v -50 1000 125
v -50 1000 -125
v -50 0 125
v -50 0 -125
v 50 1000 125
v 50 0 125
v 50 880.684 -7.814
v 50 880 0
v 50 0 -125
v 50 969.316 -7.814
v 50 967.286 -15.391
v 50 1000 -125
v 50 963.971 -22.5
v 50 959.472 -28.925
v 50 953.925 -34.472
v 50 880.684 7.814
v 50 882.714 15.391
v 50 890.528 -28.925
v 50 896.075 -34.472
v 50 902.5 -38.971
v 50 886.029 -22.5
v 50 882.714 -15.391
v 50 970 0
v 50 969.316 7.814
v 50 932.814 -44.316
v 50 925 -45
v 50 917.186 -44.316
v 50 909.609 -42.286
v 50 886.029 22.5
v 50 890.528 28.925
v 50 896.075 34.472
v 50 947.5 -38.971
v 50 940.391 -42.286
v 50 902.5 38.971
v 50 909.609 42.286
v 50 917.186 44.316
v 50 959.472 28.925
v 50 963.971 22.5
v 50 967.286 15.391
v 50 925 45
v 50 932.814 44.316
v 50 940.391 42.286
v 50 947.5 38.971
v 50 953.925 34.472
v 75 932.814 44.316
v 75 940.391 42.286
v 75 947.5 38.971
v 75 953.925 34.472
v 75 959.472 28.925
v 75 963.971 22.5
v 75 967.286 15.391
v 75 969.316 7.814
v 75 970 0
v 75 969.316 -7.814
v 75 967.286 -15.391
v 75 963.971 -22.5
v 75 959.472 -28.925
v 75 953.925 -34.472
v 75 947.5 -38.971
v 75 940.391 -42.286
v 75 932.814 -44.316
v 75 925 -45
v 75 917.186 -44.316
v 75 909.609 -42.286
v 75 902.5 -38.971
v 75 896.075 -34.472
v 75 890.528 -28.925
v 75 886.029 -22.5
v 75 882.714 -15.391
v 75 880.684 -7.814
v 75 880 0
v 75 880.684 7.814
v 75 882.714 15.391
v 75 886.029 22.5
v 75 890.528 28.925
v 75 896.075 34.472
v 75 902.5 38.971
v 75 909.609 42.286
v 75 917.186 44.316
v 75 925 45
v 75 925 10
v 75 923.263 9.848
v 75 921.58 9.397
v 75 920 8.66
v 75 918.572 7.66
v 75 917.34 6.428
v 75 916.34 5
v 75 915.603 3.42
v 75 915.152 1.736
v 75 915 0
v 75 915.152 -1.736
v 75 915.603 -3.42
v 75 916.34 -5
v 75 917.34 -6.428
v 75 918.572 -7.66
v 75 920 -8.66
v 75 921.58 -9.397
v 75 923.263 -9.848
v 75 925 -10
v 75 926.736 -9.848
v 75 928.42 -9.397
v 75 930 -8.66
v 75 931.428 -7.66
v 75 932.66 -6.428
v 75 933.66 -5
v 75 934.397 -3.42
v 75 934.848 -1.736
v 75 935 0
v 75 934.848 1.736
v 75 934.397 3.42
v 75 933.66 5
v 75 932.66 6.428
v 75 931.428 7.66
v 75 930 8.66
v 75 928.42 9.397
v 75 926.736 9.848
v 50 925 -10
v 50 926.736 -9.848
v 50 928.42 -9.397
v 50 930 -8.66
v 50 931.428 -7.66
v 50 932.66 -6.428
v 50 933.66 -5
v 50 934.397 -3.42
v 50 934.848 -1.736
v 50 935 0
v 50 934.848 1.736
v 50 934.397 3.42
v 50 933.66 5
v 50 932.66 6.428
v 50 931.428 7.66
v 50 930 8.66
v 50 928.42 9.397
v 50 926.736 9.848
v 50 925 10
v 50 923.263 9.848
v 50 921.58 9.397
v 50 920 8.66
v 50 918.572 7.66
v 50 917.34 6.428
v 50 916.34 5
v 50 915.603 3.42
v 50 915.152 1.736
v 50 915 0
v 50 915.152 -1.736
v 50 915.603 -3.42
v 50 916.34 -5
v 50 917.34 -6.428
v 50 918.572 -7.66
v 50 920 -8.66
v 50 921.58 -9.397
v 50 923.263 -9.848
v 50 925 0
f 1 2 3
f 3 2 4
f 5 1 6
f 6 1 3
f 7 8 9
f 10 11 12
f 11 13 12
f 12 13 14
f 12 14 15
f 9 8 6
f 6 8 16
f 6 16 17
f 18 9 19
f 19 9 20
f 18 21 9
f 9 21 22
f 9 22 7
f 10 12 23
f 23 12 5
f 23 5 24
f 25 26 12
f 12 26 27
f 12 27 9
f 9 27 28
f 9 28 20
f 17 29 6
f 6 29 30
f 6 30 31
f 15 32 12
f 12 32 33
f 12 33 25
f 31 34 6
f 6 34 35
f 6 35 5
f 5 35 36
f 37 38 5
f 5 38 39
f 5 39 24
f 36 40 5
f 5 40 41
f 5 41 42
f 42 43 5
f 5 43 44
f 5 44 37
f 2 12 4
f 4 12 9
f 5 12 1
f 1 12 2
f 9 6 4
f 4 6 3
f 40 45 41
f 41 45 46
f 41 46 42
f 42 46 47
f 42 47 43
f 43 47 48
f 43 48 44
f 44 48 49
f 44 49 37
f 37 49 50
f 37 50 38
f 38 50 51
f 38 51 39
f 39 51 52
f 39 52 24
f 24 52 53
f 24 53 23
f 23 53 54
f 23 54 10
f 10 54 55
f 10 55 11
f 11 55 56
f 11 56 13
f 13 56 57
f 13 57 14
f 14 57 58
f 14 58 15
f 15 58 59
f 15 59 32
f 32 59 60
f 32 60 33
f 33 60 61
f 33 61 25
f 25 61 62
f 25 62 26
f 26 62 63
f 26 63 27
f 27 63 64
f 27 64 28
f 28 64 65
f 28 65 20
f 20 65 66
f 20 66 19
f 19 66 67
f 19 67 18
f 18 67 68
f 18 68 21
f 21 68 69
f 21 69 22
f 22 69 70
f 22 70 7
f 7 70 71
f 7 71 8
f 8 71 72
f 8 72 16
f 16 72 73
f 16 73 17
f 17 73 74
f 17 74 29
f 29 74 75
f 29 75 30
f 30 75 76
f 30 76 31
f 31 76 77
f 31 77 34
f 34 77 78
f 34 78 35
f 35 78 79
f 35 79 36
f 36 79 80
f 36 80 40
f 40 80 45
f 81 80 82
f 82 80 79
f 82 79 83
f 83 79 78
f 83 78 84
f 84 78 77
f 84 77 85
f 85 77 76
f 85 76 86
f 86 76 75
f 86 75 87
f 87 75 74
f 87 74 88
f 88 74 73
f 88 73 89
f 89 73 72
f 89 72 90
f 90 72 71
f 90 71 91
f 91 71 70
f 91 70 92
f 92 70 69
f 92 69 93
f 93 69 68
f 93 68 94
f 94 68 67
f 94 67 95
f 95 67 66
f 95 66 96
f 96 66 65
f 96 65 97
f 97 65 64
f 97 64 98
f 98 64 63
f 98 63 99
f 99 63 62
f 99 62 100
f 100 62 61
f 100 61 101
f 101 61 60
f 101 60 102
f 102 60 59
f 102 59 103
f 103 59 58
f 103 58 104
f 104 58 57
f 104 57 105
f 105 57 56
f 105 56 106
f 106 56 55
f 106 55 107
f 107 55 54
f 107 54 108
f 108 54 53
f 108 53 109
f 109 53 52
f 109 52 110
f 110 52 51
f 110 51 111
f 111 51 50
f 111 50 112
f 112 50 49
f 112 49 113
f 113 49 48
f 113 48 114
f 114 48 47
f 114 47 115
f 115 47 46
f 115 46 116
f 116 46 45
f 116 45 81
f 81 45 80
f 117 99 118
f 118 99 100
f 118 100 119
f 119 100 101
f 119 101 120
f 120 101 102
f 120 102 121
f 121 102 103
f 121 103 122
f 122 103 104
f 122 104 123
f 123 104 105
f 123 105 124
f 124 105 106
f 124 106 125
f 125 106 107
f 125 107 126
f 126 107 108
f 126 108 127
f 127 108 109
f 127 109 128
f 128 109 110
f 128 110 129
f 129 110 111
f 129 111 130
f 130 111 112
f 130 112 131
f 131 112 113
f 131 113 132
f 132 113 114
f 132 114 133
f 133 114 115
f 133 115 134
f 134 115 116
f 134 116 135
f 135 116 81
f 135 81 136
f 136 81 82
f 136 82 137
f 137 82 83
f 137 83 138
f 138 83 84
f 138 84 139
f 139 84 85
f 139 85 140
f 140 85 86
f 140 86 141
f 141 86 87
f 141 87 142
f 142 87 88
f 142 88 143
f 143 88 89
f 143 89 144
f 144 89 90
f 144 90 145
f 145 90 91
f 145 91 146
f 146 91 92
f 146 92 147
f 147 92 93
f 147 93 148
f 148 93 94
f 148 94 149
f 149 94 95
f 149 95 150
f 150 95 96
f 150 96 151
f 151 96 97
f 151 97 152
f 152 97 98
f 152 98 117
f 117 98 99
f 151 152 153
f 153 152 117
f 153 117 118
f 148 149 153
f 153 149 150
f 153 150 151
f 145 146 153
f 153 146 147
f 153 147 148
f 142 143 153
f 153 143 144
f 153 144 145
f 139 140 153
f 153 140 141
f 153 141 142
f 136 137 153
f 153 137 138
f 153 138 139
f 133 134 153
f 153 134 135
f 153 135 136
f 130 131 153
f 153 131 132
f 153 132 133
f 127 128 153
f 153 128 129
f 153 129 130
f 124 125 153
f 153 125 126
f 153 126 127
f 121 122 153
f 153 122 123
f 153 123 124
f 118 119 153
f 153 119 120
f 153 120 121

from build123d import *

# Parameters (mm, degrees)
SKETCH1_W           = 100
SKETCH1_H           = 250
BOSS_EXTRUDE1_DEPTH = 1000
SKETCH2_R           = 45
BOSS_EXTRUDE2_DEPTH = 25
SKETCH3_R           = 10
CUT_EXTRUDE1_DEPTH  = 25


with BuildPart() as part:
    # Sketch1 → Boss-Extrude1 (new body)
    with BuildSketch(Plane(origin=(0, 0, 0), x_dir=(1, 0, 0), z_dir=(0, 1, 0))):
        Rectangle(SKETCH1_W, SKETCH1_H)
    extrude(amount=BOSS_EXTRUDE1_DEPTH)

    # Sketch2 → Boss-Extrude2 (add)
    with BuildSketch(Plane(origin=(50, 0, 0), x_dir=(0, 0, -1), z_dir=(1, 0, 0))):
        with Locations(Location((0, 925, 0), (0, 0, 180))):
            Circle(SKETCH2_R)
    extrude(amount=BOSS_EXTRUDE2_DEPTH)

    # Sketch3 → Cut-Extrude1 (cut)
    with BuildSketch(Plane(origin=(75, 0, 0), x_dir=(0, 0, -1), z_dir=(1, 0, 0))):
        with Locations((0, 925)):
            Circle(SKETCH3_R)
    extrude(amount=-CUT_EXTRUDE1_DEPTH, mode=Mode.SUBTRACT)


solid = part.part
